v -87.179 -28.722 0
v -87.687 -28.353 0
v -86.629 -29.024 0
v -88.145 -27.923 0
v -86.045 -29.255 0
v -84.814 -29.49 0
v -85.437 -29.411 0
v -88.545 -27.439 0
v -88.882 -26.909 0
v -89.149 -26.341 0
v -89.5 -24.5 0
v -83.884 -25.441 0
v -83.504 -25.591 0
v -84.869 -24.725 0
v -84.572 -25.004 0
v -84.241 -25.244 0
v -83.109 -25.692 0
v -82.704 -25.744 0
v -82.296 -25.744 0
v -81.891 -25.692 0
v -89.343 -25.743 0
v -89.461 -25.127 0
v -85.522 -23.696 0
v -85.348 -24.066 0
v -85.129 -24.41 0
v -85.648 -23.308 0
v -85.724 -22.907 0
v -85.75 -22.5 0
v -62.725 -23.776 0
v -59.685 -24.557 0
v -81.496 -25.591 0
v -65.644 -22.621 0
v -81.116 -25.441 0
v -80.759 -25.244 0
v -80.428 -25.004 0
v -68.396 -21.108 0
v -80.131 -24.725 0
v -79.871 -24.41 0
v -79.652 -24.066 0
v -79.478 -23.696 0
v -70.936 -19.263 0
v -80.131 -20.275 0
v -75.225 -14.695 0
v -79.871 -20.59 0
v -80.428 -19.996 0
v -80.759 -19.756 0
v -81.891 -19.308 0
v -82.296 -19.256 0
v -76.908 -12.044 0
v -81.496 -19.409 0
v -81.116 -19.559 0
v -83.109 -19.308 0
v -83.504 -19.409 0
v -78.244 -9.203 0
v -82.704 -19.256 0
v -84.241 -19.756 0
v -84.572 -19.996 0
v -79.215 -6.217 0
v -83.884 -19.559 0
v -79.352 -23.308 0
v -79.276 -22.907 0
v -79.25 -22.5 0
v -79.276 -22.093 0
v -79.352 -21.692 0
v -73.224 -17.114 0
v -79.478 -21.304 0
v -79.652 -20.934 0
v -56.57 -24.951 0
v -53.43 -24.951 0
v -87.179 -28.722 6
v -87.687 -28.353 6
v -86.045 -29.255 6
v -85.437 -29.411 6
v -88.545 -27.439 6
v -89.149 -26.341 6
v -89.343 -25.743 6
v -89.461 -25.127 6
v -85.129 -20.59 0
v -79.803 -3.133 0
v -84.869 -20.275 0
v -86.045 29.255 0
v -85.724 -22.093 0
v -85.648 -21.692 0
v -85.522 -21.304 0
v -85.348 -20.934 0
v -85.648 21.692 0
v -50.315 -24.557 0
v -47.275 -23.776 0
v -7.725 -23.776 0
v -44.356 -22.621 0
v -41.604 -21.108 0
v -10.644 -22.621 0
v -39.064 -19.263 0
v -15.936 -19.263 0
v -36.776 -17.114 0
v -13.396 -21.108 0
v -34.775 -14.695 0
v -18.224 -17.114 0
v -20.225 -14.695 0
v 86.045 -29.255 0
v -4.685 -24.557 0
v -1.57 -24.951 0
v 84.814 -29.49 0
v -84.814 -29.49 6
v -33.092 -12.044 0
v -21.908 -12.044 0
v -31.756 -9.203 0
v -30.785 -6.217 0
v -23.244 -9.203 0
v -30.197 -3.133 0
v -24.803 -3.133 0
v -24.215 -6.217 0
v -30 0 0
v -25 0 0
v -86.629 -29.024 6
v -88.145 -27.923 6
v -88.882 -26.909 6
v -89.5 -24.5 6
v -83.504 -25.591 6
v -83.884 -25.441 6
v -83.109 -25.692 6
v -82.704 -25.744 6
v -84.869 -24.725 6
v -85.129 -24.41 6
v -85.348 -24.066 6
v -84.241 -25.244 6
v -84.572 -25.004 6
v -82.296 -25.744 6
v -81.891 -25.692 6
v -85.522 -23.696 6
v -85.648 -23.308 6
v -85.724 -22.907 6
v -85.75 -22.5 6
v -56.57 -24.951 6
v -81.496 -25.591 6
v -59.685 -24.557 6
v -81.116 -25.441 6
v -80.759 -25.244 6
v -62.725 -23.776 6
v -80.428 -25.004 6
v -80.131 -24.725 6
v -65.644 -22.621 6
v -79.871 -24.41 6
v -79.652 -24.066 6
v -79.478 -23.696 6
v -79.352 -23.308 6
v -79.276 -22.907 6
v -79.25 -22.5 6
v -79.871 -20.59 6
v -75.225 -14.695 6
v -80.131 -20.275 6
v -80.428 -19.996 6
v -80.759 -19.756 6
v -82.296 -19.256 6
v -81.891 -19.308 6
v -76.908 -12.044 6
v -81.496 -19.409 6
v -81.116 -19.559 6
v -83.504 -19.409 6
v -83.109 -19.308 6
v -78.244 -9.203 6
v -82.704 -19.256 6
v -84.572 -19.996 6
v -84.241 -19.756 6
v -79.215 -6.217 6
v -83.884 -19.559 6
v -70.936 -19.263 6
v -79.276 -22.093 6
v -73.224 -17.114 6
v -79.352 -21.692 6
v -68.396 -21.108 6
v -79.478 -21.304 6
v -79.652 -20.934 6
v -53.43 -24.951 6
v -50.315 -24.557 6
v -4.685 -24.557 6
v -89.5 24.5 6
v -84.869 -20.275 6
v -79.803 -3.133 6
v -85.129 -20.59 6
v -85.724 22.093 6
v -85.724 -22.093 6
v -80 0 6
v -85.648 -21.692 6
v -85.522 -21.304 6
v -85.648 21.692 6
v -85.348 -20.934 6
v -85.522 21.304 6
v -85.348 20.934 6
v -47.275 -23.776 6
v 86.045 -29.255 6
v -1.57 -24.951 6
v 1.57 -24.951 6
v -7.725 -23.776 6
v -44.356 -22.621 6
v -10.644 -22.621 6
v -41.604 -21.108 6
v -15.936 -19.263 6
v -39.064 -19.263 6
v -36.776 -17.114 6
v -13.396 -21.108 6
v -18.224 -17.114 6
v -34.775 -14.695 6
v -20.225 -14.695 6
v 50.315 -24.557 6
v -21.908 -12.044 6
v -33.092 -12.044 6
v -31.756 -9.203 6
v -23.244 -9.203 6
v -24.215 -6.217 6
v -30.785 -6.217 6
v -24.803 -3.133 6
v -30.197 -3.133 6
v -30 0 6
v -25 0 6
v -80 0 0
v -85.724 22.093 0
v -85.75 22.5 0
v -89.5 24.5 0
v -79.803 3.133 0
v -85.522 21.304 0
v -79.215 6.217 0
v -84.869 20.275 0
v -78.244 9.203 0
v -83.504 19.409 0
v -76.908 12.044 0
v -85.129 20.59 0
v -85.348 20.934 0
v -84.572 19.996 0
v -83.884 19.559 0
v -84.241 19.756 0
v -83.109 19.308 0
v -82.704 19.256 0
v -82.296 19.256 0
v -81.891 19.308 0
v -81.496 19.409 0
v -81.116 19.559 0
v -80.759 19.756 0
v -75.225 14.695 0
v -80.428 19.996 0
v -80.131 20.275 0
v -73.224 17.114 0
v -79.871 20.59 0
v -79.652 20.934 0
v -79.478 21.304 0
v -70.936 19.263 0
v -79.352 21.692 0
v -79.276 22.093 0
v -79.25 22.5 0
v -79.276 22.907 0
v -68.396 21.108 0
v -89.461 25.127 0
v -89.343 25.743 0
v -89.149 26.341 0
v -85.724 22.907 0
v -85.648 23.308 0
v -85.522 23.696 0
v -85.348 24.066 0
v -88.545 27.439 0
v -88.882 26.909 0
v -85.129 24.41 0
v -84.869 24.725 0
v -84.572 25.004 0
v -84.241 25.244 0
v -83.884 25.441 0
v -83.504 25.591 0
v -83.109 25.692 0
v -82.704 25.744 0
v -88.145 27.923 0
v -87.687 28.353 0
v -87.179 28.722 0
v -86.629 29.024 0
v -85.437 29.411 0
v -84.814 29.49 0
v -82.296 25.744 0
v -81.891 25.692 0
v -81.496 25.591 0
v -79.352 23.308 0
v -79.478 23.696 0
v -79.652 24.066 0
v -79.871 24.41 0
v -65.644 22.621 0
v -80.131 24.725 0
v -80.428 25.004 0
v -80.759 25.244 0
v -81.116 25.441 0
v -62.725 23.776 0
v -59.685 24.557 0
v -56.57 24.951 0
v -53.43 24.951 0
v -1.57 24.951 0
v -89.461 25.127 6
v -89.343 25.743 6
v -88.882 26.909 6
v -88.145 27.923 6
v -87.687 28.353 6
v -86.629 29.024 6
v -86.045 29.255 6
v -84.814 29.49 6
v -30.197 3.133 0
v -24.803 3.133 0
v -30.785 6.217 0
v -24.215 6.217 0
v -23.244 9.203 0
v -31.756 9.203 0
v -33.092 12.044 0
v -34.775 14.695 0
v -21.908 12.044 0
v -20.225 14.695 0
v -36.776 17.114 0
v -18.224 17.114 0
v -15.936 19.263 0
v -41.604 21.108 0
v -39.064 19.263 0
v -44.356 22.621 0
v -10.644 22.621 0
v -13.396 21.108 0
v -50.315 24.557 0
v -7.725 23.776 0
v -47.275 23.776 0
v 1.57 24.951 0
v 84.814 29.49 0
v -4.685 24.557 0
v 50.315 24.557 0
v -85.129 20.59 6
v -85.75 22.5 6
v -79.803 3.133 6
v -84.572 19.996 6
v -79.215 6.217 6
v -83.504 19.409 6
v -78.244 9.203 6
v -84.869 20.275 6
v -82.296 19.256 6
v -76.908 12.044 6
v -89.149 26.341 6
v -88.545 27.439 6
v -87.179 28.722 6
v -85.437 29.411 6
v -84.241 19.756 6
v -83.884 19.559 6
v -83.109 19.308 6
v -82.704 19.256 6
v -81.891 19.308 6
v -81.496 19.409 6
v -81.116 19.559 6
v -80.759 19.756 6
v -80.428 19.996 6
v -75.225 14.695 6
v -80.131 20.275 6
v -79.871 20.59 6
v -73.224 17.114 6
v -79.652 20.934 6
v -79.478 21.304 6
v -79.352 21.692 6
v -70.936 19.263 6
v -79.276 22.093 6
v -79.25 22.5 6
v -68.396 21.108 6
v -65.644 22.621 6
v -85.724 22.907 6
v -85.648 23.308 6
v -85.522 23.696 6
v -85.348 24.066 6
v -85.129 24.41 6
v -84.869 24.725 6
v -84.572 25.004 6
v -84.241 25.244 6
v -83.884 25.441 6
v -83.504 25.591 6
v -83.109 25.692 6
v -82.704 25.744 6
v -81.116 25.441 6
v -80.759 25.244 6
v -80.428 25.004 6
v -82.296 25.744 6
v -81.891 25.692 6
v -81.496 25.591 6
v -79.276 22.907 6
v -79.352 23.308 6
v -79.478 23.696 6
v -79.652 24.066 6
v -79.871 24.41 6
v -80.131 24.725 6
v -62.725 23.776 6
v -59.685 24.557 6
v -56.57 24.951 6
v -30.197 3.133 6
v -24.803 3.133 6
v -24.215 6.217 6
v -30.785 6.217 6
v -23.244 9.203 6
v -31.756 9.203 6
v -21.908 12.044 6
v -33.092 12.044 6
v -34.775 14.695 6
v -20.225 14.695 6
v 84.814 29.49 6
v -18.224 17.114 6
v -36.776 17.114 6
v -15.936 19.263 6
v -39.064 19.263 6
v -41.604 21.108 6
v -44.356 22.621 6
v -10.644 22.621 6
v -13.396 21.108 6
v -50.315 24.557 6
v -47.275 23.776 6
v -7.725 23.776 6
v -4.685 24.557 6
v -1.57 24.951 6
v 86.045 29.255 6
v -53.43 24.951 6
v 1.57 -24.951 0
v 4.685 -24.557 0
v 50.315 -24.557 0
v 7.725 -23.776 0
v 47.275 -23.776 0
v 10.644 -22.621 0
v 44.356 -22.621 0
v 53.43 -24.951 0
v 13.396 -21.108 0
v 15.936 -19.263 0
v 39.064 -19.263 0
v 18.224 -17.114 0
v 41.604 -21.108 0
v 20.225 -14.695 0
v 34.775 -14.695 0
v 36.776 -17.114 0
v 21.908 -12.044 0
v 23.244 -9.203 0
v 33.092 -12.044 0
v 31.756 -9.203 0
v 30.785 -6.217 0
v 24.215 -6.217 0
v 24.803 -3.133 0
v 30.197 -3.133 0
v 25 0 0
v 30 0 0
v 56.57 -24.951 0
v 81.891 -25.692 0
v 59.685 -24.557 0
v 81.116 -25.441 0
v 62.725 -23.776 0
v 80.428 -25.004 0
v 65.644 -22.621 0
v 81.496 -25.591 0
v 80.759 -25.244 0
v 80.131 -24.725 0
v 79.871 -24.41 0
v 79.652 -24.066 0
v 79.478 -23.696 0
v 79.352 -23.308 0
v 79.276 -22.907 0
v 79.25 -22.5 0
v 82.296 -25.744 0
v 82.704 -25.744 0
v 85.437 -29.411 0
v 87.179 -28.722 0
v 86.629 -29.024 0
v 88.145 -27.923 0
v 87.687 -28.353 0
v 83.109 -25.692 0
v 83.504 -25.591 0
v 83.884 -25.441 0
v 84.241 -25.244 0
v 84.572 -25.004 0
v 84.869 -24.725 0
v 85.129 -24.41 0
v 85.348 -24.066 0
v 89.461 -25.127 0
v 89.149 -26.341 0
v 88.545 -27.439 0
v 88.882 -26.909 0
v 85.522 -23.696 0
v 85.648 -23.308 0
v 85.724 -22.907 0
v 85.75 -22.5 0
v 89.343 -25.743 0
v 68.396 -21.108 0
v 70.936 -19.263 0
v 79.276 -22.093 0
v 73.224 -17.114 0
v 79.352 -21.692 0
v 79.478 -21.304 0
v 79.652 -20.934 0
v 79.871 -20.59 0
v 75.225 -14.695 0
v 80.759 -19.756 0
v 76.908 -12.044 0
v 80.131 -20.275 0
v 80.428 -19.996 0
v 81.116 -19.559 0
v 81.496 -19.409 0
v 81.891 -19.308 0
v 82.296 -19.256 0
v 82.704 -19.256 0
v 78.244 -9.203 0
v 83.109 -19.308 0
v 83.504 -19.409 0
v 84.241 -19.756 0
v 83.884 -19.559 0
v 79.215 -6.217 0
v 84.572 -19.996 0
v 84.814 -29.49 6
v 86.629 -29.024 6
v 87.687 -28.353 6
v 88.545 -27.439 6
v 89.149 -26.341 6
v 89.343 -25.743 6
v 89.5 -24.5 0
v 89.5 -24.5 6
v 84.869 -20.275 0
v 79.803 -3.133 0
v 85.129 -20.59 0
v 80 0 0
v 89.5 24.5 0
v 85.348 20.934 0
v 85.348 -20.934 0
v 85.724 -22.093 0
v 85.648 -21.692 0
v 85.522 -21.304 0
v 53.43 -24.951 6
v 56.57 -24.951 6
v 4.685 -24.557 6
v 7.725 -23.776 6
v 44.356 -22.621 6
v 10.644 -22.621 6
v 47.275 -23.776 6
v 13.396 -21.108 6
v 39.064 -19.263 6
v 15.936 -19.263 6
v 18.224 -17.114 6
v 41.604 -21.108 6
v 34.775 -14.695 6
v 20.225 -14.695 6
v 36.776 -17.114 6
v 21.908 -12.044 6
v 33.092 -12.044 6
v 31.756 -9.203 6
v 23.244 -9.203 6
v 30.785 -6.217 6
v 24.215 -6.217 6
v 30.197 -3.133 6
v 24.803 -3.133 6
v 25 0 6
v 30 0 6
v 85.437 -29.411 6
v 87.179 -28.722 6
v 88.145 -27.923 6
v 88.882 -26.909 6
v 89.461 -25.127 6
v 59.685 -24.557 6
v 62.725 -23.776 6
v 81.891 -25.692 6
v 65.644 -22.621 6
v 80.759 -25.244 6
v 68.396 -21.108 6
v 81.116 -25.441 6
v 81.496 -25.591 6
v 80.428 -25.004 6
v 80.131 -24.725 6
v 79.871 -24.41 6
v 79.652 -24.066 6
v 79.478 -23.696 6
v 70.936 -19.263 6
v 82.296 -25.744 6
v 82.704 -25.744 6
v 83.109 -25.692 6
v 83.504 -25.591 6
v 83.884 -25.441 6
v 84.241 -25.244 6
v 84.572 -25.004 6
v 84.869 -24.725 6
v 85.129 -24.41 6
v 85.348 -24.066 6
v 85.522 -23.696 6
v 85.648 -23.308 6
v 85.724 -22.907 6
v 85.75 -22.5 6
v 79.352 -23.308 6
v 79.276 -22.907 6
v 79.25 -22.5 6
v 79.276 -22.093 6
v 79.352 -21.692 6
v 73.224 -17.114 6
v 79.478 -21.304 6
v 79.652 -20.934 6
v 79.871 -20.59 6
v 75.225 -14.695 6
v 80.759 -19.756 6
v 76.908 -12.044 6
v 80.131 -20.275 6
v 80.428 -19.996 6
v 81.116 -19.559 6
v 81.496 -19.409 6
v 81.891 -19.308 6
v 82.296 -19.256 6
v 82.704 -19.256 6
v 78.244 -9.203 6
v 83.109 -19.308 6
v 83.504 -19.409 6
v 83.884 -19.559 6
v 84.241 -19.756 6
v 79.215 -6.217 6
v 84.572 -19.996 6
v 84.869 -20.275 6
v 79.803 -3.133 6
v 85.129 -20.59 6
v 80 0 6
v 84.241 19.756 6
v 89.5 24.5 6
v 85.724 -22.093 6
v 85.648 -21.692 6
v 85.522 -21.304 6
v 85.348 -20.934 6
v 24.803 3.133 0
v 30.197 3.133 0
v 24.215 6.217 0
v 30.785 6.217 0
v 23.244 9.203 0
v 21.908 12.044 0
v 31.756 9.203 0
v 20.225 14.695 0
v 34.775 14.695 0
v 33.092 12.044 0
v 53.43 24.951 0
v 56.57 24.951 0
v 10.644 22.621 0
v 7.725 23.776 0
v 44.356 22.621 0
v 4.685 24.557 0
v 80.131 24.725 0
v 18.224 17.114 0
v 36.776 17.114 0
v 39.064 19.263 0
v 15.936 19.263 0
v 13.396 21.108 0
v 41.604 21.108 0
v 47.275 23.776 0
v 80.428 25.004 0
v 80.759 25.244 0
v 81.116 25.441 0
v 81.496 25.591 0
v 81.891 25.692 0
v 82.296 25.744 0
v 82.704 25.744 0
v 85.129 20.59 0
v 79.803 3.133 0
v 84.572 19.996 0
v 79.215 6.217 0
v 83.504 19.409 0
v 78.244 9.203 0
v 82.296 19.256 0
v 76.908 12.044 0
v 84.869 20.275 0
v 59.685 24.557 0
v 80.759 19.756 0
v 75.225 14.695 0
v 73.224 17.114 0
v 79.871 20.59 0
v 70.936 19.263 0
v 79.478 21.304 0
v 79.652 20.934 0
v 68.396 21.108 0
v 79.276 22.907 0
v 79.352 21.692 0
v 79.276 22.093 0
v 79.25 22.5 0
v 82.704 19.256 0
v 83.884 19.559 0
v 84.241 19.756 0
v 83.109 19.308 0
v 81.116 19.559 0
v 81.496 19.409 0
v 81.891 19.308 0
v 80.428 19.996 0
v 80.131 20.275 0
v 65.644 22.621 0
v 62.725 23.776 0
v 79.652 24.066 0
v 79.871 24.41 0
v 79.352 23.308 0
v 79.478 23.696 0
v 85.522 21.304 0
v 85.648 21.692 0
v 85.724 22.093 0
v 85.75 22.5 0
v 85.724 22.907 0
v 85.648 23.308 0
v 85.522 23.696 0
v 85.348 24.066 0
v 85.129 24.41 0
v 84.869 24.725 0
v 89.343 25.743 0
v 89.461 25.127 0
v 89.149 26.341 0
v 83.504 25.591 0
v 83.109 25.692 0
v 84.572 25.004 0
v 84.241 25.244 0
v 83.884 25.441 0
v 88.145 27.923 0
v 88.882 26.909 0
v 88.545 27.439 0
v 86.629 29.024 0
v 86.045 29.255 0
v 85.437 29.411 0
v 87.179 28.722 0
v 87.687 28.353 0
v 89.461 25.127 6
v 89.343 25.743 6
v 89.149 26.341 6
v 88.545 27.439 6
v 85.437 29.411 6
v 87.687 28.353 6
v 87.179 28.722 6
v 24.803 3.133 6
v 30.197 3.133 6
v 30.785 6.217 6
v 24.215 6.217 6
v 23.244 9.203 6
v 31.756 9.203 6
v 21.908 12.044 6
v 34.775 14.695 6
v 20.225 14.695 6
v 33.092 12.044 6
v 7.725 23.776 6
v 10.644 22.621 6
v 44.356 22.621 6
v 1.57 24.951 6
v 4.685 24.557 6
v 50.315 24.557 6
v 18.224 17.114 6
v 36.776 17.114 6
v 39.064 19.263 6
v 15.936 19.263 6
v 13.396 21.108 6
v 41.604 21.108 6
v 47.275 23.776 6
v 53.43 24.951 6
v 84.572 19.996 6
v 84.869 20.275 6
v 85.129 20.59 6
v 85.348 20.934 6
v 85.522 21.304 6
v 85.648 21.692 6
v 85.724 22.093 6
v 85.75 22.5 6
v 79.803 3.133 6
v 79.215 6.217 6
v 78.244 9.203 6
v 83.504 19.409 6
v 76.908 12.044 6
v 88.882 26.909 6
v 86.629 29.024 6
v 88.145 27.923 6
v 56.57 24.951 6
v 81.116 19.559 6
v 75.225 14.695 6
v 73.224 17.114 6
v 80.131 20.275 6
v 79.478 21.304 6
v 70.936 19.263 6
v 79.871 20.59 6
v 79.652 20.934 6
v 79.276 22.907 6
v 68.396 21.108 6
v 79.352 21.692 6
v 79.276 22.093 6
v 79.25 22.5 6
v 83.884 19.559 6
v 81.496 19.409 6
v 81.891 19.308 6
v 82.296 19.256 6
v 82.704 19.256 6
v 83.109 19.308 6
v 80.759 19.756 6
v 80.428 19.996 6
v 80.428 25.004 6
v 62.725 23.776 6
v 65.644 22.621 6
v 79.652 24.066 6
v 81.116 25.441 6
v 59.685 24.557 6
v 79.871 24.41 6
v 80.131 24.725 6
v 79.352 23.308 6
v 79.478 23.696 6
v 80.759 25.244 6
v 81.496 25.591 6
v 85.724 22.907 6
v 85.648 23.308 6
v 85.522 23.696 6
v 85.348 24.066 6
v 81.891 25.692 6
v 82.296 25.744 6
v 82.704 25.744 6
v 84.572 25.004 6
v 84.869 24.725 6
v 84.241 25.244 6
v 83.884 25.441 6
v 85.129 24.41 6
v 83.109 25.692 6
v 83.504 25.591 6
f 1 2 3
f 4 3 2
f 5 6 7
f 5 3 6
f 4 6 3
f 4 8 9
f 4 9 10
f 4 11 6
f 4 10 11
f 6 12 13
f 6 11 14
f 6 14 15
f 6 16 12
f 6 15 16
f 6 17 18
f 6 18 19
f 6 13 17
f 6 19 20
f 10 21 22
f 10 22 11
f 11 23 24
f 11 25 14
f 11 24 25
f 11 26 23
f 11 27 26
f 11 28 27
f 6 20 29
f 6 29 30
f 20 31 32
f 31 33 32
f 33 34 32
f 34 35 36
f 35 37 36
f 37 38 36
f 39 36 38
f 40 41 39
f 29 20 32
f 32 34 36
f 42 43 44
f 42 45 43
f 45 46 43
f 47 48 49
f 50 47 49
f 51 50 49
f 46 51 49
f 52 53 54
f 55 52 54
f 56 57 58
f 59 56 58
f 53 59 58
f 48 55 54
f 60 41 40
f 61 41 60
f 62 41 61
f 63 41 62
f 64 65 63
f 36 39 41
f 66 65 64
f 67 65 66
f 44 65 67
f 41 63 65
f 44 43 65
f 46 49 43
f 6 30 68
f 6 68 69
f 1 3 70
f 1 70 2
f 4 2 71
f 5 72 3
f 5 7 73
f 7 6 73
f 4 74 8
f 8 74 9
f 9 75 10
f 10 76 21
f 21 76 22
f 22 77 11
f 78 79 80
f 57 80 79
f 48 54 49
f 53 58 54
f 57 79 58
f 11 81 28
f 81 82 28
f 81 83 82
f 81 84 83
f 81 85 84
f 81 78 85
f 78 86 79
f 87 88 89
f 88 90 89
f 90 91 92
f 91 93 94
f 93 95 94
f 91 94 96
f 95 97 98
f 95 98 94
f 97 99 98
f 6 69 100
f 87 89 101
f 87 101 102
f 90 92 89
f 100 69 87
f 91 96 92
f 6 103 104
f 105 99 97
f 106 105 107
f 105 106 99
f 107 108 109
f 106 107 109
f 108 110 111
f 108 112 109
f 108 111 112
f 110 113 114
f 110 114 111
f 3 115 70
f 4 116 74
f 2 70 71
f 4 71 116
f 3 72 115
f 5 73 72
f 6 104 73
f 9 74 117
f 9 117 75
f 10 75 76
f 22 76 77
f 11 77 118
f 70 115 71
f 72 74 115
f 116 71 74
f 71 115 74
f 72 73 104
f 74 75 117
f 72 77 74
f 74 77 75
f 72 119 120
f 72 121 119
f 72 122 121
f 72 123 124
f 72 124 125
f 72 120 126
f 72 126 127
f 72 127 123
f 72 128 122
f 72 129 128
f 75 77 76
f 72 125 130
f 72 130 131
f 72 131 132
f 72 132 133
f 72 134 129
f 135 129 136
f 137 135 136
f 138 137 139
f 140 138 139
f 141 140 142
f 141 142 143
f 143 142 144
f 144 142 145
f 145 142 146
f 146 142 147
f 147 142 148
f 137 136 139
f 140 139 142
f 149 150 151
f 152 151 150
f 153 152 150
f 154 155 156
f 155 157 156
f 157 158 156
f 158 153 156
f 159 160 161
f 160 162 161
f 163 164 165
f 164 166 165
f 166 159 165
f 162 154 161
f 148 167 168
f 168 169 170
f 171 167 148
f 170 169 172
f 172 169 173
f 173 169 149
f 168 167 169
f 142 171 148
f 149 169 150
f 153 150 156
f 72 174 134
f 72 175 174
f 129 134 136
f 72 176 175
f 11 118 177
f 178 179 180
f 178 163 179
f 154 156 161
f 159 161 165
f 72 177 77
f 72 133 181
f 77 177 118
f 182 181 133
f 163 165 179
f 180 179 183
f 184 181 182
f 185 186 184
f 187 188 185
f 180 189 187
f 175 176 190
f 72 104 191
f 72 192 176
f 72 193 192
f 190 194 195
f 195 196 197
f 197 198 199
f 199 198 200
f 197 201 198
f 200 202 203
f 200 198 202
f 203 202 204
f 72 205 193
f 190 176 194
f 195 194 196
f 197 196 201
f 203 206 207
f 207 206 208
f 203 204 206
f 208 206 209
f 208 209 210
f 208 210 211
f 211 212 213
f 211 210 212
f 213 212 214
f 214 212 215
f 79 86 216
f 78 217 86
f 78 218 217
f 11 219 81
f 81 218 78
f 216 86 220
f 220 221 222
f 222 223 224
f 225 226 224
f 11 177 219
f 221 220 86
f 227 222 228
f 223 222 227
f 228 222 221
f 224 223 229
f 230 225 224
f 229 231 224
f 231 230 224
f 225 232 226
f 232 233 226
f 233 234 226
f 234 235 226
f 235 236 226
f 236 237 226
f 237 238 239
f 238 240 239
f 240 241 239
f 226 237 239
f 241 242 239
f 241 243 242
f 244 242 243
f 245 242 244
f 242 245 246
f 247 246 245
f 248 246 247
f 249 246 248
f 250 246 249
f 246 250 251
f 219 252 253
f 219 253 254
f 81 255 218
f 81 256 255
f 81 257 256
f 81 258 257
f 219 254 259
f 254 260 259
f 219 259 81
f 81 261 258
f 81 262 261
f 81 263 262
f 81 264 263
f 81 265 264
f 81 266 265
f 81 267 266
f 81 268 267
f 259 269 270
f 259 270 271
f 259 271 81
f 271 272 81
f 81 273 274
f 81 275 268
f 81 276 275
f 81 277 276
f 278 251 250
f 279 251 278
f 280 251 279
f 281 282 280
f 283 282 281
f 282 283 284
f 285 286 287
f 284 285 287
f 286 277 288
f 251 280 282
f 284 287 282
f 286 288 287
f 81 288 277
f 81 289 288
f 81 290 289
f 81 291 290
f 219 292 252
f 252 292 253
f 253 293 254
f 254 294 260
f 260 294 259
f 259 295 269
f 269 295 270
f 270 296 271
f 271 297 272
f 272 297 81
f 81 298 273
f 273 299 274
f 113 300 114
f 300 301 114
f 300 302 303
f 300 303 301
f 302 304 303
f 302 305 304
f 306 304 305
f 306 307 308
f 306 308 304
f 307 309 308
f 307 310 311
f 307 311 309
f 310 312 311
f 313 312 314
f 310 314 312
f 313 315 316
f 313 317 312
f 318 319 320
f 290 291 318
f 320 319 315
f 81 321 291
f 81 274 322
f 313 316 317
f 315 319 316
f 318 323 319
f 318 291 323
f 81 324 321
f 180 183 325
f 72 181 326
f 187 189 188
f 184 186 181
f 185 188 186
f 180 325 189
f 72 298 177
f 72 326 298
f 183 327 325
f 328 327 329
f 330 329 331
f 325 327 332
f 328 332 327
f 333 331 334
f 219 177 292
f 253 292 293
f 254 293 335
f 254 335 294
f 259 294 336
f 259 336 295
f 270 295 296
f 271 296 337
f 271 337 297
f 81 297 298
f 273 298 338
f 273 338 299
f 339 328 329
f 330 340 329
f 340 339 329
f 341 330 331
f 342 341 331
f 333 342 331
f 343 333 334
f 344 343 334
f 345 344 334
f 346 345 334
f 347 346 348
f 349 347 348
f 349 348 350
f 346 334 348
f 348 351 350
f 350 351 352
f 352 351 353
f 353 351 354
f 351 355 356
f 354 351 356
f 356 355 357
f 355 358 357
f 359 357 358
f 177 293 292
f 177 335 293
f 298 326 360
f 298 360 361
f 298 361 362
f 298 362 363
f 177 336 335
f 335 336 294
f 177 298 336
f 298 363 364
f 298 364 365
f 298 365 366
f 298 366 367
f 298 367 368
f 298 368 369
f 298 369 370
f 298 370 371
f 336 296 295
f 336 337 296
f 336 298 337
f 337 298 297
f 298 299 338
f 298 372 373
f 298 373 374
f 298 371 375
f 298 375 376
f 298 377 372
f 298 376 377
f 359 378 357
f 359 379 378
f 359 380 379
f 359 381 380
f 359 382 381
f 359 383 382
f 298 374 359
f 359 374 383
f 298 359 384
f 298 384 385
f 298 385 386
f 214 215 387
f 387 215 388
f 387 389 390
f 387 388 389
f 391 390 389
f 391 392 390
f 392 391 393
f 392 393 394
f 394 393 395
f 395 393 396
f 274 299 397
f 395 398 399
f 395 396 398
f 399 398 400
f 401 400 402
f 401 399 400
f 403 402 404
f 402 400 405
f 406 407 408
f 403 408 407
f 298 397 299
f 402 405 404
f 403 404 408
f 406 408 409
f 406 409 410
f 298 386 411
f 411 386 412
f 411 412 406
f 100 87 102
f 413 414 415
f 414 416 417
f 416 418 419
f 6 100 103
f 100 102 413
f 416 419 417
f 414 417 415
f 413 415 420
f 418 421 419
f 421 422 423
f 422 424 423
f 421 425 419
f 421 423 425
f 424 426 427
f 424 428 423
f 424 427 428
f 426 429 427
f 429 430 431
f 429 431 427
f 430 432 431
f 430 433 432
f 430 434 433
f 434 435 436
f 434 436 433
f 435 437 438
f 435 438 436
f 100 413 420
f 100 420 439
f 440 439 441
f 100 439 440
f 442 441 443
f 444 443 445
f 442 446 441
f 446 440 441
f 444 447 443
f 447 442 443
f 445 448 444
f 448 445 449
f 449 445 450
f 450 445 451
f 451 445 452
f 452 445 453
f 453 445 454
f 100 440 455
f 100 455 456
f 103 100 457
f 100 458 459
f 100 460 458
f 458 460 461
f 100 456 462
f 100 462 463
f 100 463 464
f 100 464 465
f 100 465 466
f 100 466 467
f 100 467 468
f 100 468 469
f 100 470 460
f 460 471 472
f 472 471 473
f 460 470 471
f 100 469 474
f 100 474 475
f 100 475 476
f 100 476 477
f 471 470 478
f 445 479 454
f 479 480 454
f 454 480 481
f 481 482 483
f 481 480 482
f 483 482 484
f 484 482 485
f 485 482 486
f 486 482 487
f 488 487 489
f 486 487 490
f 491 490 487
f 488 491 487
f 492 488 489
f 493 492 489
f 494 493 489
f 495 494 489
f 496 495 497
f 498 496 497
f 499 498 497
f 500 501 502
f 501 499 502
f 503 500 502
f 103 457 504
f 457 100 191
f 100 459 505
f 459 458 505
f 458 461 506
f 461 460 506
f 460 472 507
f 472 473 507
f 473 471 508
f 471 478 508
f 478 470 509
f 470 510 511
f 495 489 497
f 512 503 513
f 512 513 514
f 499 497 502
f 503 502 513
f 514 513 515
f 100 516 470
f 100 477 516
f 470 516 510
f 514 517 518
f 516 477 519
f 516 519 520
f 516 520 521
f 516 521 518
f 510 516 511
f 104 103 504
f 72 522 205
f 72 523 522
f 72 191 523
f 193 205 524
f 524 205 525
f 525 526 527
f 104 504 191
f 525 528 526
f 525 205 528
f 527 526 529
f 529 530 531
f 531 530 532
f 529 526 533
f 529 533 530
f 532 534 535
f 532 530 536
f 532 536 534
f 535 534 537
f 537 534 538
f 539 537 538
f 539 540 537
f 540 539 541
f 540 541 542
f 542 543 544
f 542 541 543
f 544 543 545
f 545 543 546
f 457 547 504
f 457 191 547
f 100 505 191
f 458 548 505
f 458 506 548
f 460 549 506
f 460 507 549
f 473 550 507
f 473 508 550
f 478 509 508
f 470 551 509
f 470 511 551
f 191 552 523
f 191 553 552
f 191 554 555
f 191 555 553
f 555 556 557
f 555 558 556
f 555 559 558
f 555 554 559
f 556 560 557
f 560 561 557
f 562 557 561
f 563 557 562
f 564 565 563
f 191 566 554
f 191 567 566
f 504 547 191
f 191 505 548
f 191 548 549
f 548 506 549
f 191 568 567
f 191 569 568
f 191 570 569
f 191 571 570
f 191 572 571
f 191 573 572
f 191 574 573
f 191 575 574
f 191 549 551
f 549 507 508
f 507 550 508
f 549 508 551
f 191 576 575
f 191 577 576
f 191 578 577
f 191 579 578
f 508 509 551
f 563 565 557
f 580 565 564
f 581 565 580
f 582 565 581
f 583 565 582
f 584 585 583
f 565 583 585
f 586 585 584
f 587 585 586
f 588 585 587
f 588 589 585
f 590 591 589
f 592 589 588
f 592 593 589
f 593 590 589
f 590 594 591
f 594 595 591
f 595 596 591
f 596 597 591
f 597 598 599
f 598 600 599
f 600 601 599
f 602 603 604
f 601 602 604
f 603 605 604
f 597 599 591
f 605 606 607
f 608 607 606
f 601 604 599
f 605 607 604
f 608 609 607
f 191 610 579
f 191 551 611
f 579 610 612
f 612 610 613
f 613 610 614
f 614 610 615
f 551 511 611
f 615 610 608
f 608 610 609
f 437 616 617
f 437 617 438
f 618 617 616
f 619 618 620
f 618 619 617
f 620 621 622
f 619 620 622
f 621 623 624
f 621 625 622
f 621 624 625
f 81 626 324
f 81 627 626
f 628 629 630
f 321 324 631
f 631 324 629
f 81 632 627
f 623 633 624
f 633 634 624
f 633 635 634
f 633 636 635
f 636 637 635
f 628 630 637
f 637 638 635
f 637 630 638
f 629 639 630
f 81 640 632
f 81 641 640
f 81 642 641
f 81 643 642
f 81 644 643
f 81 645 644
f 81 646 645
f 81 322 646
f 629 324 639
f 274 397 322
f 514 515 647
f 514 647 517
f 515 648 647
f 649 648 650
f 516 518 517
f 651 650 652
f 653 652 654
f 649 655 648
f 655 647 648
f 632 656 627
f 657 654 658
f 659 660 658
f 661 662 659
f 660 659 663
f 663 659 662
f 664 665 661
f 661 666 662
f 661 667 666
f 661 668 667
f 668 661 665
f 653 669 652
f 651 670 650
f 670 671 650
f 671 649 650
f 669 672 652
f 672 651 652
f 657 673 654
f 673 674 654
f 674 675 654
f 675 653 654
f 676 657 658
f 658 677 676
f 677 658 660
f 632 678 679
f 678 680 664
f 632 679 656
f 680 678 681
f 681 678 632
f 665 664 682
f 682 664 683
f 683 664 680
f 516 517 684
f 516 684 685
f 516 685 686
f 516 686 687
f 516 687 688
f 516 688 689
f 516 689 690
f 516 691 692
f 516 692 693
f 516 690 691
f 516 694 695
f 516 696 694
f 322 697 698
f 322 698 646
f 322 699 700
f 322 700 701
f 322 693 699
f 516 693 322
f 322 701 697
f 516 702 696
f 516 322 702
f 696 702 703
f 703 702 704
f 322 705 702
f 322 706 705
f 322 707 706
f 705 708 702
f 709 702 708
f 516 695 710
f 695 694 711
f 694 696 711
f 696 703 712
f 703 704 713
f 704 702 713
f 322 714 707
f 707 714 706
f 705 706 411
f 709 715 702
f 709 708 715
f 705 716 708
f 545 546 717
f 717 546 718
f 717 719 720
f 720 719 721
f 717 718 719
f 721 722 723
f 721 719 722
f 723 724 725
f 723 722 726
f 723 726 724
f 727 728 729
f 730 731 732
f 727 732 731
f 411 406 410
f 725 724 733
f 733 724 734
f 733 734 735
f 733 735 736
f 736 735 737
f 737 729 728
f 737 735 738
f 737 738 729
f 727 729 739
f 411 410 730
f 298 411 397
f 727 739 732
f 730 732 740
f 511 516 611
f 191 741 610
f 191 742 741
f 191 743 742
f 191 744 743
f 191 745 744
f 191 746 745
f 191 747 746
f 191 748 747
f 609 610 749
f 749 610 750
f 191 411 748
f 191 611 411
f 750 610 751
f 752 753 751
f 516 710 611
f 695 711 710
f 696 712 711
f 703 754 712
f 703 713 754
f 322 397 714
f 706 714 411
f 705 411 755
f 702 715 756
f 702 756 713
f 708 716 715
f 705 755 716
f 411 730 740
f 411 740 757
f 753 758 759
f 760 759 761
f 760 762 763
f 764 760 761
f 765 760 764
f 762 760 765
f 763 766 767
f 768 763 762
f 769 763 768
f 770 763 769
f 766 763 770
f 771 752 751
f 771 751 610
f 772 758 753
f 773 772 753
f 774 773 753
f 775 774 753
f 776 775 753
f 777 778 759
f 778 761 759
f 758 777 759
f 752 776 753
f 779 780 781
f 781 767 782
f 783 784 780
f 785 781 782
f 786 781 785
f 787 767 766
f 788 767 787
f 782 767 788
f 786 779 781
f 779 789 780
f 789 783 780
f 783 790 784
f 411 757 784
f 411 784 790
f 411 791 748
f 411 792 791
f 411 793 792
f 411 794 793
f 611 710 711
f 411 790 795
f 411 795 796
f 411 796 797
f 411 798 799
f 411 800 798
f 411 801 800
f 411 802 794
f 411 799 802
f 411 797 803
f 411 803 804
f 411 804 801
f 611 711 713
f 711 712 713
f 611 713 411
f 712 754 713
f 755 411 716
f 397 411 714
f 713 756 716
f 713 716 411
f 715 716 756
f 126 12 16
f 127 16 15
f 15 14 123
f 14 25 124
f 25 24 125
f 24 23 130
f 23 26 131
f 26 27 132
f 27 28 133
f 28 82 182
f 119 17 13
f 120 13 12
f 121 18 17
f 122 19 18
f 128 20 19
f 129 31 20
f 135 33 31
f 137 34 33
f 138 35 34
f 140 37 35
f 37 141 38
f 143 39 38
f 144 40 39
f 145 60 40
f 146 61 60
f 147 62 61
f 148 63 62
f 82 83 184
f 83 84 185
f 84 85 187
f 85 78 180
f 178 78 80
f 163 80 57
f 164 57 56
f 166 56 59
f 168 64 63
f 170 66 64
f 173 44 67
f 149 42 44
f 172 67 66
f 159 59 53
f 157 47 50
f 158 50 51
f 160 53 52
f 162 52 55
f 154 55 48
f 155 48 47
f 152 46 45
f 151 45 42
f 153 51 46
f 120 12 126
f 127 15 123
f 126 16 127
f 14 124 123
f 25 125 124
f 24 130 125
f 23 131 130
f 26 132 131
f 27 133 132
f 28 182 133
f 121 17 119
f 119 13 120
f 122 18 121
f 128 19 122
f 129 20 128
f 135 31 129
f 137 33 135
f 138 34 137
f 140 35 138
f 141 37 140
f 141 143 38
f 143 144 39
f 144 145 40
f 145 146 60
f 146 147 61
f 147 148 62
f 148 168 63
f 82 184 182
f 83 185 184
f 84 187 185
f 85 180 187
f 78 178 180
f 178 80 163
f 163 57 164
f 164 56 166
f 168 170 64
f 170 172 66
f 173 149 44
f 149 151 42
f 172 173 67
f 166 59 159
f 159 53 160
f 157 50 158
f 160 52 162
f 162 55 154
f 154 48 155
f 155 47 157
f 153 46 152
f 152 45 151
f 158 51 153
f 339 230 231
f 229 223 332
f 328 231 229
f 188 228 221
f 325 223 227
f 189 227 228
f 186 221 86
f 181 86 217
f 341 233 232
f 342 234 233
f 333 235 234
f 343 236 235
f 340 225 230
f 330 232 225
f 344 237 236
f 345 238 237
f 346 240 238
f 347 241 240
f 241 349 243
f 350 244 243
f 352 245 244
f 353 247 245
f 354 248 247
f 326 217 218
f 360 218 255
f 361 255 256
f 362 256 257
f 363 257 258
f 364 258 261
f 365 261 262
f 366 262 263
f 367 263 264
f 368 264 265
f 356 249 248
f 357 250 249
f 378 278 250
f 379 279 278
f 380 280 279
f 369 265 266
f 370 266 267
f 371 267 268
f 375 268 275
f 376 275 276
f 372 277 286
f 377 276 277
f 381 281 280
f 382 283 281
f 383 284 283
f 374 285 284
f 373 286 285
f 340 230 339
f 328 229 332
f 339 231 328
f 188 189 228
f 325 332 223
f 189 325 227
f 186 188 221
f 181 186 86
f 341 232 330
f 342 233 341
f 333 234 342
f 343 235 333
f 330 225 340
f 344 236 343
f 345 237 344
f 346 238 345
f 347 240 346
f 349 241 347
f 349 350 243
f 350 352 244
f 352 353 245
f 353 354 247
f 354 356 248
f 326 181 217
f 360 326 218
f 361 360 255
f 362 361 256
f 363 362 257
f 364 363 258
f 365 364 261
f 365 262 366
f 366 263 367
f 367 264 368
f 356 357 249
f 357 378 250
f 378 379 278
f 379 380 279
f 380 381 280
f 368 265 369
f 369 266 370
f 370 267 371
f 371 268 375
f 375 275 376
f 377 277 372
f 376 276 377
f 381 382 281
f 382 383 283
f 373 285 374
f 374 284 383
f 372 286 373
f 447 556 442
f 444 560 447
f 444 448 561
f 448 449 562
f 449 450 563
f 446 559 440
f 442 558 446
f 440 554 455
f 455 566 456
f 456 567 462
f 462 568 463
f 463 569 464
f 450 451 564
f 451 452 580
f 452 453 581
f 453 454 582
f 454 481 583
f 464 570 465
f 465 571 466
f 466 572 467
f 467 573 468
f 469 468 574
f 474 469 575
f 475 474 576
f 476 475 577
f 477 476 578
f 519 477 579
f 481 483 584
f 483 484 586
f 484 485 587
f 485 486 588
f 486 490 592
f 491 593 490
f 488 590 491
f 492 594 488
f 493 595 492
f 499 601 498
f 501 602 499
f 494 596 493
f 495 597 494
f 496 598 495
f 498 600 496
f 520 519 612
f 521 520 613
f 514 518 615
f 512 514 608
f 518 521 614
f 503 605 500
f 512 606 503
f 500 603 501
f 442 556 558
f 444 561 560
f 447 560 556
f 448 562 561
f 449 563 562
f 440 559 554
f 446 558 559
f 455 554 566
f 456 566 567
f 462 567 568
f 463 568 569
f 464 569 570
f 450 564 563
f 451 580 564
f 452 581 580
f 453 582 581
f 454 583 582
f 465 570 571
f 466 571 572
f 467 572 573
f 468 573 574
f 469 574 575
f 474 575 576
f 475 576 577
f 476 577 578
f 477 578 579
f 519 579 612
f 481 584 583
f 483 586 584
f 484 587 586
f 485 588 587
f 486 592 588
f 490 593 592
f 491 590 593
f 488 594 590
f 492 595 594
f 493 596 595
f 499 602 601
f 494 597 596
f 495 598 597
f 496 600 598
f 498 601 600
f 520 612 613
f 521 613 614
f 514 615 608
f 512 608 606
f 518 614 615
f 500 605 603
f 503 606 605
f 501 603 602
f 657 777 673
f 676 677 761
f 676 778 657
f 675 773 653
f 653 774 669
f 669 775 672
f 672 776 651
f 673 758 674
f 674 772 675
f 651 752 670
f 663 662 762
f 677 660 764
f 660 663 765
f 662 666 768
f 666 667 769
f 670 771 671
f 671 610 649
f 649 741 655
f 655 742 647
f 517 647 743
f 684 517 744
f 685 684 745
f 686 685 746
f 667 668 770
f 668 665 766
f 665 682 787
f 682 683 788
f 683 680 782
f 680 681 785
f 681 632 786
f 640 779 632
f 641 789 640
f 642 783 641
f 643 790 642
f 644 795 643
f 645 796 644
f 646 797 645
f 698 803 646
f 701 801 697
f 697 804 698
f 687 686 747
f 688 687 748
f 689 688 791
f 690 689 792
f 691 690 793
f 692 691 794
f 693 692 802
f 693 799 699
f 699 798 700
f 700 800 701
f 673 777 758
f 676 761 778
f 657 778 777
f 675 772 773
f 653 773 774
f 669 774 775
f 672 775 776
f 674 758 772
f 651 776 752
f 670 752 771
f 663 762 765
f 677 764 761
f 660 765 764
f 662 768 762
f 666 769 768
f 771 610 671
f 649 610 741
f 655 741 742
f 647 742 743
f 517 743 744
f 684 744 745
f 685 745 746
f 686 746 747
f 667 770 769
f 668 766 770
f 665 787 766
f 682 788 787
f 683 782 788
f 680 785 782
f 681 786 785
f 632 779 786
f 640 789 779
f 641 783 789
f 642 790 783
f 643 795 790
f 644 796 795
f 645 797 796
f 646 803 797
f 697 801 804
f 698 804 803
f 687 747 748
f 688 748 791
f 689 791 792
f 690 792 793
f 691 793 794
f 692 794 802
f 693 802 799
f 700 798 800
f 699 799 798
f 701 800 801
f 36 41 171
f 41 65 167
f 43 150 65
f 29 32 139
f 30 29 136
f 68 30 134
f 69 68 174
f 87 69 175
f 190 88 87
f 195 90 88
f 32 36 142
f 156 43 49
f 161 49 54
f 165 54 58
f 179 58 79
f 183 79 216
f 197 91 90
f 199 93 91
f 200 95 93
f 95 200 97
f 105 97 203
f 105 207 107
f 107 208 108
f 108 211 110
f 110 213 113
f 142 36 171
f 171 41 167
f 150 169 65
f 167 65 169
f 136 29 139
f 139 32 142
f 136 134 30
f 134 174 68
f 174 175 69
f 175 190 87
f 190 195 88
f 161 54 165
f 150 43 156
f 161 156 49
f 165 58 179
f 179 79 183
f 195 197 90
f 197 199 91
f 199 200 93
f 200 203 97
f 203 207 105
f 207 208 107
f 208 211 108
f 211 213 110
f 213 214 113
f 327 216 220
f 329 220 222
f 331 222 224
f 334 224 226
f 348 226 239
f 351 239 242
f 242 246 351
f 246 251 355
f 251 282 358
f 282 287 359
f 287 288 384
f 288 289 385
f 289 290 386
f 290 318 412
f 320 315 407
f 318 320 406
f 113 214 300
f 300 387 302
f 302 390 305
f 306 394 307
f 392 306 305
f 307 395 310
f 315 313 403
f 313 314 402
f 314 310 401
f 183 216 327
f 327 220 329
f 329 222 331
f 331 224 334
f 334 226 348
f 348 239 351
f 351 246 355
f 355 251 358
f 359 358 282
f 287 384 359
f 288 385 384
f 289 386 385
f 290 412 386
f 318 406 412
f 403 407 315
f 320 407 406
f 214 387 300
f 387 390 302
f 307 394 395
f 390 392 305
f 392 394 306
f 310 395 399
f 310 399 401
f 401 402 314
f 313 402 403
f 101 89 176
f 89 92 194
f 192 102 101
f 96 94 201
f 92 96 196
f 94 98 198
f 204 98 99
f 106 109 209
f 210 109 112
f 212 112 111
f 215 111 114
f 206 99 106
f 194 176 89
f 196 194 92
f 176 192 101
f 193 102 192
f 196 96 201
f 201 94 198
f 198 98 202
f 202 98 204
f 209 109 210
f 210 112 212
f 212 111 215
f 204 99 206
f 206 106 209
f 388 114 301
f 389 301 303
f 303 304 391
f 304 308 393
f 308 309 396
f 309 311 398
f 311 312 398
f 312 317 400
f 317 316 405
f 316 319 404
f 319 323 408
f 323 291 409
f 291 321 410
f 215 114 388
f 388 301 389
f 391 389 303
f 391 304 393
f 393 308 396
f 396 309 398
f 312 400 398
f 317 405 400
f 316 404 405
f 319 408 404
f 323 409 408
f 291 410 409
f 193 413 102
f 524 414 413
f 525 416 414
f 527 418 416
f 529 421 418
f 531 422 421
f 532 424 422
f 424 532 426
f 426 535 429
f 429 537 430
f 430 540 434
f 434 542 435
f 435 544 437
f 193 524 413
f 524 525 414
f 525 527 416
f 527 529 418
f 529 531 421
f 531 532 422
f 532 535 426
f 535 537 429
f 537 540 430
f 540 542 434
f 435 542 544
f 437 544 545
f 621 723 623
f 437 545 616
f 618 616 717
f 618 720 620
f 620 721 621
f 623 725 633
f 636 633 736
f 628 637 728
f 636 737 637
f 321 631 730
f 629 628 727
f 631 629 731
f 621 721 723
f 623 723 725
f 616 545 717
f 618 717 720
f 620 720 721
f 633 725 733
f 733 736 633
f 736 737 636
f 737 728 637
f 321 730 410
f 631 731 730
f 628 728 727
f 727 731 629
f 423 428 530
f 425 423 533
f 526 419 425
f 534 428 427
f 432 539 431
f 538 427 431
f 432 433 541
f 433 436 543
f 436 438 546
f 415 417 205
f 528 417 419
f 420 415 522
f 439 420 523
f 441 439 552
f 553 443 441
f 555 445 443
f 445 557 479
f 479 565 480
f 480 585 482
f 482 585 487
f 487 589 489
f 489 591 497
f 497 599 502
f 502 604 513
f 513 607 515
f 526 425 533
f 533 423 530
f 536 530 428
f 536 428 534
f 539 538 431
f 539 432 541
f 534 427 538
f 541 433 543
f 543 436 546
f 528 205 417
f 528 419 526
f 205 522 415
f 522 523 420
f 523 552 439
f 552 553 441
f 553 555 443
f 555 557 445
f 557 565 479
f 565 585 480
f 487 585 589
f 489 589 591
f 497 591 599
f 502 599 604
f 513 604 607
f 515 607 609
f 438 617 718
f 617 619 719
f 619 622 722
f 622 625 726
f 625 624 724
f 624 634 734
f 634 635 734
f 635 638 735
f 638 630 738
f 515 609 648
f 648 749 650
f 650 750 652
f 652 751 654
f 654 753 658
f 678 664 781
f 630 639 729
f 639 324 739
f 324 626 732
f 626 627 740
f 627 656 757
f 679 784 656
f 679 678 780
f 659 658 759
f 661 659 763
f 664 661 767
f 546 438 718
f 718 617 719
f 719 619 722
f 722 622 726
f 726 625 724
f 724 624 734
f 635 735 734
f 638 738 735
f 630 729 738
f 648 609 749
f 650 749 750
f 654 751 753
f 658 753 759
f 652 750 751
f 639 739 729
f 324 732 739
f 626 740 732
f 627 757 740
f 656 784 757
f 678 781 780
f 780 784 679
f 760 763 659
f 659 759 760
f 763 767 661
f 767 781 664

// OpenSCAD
$fn = 50;

difference() {
	union() {
		hull() {
			translate(v = [-84.5, 24.5, 0]) {
				cylinder(h = 6, r = 5);
			}
			translate(v = [84.5, 24.5, 0]) {
				cylinder(h = 6, r = 5);
			}
			translate(v = [-84.5, -24.5, 0]) {
				cylinder(h = 6, r = 5);
			}
			translate(v = [84.5, -24.5, 0]) {
				cylinder(h = 6, r = 5);
			}
		}
	}
	union() {
		translate(v = [-82.5, -22.5, -100.0]) {
			cylinder(h = 200, r = 3.25);
		}
		translate(v = [-82.5, 22.5, -100.0]) {
			cylinder(h = 200, r = 3.25);
		}
		translate(v = [82.5, -22.5, -100.0]) {
			cylinder(h = 200, r = 3.25);
		}
		translate(v = [82.5, 22.5, -100.0]) {
			cylinder(h = 200, r = 3.25);
		}
		translate(v = [-82.5, -22.5, -100.0]) {
			cylinder(h = 200, r = 1.8);
		}
		translate(v = [-82.5, 22.5, -100.0]) {
			cylinder(h = 200, r = 1.8);
		}
		translate(v = [82.5, -22.5, -100.0]) {
			cylinder(h = 200, r = 1.8);
		}
		translate(v = [82.5, 22.5, -100.0]) {
			cylinder(h = 200, r = 1.8);
		}
		translate(v = [-55.0, 0, 0.0]) {
			cylinder(h = 6, r = 25.0);
		}
		cylinder(h = 6, r = 25.0);
		translate(v = [55.0, 0, 0.0]) {
			cylinder(h = 6, r = 25.0);
		}
	}
}
